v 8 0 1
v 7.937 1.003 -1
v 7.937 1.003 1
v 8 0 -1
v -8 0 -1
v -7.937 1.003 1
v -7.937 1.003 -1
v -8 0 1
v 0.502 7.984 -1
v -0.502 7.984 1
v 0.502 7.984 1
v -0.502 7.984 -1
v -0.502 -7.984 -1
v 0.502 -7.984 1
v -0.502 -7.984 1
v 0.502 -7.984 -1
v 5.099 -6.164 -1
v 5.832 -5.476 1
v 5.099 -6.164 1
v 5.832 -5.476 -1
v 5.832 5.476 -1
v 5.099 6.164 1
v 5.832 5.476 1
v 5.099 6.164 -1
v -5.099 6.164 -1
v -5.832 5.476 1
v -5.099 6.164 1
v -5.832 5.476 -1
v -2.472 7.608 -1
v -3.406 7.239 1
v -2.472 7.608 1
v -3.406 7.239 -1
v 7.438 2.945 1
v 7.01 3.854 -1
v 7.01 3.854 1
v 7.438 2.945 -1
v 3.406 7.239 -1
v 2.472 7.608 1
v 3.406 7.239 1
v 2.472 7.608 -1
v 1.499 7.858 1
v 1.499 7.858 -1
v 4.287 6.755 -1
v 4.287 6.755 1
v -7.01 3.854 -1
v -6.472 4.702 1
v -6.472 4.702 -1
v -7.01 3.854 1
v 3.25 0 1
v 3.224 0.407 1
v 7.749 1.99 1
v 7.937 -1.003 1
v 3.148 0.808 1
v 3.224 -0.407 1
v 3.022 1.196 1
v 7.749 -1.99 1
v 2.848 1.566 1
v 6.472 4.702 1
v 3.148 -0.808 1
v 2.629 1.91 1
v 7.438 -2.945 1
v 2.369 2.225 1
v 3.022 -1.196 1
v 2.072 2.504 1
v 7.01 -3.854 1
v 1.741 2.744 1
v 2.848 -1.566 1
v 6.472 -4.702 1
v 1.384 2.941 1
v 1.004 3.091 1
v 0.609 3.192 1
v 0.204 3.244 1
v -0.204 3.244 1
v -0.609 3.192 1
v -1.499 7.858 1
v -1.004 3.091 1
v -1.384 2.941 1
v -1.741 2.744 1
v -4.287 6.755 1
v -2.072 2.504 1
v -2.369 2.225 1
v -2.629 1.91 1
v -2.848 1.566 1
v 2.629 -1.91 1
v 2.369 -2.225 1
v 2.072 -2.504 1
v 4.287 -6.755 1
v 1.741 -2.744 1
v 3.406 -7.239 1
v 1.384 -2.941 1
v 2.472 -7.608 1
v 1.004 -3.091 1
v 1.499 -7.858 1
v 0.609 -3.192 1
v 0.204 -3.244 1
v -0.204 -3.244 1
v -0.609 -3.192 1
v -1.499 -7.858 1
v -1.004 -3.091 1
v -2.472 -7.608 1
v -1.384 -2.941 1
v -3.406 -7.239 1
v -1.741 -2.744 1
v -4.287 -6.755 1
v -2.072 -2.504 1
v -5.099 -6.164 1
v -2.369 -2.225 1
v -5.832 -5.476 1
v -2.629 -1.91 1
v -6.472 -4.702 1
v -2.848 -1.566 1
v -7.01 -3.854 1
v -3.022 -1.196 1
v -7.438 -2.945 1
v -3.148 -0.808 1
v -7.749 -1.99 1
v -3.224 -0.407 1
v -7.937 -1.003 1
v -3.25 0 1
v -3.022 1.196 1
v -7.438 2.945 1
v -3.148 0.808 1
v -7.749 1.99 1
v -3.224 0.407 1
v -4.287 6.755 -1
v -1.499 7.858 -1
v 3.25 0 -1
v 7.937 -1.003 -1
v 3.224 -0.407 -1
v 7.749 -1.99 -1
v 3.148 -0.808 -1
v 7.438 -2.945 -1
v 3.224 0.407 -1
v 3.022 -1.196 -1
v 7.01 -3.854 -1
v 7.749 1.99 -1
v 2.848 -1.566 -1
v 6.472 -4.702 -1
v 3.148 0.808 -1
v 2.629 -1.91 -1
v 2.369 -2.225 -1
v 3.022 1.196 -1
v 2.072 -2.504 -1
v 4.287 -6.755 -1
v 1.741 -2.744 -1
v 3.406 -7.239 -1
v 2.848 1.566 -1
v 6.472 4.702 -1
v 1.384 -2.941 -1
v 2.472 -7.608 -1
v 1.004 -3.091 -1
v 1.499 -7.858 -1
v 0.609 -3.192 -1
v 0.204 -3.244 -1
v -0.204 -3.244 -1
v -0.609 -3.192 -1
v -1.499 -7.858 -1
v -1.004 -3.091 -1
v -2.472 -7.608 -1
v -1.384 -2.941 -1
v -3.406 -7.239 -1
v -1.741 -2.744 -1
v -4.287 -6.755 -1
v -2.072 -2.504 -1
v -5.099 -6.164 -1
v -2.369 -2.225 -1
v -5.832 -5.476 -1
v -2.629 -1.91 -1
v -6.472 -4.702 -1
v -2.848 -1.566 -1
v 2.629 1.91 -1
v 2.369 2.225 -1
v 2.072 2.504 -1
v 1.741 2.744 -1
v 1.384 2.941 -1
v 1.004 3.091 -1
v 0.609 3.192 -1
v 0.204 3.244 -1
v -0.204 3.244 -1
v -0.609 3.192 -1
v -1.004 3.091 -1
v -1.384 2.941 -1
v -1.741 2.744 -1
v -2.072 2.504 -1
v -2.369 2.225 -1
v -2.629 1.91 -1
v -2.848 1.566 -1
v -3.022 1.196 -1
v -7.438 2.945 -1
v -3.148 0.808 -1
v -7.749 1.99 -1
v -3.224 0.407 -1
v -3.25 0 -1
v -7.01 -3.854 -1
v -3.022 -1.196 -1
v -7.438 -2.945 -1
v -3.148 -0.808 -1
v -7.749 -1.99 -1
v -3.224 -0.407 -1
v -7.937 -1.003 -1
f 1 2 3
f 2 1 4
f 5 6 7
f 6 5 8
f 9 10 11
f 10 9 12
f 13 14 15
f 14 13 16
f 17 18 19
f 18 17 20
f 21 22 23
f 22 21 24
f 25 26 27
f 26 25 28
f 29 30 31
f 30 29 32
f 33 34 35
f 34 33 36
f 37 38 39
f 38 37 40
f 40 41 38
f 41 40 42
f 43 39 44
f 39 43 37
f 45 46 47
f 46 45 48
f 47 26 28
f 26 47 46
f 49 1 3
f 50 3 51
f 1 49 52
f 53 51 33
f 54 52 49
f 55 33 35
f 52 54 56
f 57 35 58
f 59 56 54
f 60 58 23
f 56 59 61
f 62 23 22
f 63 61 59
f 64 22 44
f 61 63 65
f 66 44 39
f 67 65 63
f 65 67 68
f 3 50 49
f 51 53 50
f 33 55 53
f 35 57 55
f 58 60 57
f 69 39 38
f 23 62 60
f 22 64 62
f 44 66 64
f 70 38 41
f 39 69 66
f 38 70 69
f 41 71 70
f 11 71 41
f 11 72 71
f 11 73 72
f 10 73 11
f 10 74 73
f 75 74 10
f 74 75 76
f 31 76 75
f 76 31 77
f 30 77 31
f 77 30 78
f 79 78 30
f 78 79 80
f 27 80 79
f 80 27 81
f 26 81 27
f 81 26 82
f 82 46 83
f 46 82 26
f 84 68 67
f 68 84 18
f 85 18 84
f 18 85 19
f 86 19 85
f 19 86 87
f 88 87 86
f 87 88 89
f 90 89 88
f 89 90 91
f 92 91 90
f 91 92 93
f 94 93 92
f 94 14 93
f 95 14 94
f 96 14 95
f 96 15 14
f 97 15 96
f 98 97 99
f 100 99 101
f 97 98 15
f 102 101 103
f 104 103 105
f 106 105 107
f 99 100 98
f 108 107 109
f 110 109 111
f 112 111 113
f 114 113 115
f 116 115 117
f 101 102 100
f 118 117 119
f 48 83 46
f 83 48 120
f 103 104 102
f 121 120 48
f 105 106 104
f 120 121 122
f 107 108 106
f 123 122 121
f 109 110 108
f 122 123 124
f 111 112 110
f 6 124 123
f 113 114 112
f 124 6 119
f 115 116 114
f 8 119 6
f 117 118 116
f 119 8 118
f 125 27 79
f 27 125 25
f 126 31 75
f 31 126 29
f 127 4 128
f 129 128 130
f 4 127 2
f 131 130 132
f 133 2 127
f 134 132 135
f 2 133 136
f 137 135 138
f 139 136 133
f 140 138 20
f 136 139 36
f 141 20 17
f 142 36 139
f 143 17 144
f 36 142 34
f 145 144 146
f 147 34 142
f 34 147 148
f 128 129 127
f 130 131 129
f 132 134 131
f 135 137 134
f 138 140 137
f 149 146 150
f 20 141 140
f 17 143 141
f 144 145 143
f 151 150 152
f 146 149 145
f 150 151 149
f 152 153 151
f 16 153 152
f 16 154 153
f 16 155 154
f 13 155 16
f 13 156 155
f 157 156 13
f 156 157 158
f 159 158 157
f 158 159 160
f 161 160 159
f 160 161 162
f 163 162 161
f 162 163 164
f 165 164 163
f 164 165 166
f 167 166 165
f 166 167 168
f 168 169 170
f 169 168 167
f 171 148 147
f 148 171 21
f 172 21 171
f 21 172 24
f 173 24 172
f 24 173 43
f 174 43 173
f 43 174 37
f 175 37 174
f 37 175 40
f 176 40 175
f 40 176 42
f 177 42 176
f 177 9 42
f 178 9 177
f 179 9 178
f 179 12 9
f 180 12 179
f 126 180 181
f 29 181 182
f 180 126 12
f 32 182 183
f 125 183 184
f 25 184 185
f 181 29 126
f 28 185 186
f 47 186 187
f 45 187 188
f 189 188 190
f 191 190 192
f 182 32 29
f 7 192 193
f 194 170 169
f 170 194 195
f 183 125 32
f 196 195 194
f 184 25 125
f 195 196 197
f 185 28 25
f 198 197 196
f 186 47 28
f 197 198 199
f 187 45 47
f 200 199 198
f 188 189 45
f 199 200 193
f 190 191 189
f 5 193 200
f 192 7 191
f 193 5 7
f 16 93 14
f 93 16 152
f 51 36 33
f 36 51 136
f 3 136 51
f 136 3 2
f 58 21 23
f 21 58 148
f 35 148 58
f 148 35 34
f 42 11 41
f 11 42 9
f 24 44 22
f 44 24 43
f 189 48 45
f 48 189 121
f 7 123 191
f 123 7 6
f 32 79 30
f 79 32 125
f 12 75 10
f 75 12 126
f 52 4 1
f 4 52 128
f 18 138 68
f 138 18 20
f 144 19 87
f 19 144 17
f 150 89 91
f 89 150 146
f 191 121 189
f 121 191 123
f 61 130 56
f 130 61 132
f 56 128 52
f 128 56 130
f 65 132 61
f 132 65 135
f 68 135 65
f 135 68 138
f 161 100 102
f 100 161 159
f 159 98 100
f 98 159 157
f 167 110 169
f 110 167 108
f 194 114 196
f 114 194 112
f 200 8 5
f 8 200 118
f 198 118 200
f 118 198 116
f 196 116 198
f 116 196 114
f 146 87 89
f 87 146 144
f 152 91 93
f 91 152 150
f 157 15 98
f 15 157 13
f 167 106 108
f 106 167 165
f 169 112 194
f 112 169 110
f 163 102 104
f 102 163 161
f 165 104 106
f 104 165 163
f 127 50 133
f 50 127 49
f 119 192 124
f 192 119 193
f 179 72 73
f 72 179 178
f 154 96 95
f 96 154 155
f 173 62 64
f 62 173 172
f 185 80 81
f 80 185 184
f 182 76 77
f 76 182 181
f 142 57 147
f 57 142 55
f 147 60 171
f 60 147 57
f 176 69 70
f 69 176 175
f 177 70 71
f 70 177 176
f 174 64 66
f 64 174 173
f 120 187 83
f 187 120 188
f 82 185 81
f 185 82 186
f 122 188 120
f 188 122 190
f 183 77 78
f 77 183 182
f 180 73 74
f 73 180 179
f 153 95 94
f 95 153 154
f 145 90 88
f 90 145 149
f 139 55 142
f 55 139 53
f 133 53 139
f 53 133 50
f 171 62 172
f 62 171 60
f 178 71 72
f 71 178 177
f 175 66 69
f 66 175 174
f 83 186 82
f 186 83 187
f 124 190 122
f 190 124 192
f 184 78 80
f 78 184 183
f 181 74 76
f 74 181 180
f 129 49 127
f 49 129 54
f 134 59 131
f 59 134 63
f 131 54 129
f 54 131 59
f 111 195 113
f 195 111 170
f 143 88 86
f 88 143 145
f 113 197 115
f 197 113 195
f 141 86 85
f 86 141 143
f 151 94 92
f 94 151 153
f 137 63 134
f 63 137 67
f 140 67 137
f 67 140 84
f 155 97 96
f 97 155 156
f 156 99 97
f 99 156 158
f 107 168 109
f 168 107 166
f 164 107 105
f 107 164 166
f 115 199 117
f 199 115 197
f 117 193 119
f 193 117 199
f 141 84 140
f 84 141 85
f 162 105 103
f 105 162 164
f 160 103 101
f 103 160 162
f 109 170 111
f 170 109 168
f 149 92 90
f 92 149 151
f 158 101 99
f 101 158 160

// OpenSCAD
$fn = 50;


difference() {
	union() {
		translate(v = [0, 0, -1.0000000000]) {
			cylinder(h = 2, r = 8.0000000000);
		}
	}
	union() {
		translate(v = [0, 0, -100.0000000000]) {
			cylinder(h = 200, r = 3.2500000000);
		}
	}
}
